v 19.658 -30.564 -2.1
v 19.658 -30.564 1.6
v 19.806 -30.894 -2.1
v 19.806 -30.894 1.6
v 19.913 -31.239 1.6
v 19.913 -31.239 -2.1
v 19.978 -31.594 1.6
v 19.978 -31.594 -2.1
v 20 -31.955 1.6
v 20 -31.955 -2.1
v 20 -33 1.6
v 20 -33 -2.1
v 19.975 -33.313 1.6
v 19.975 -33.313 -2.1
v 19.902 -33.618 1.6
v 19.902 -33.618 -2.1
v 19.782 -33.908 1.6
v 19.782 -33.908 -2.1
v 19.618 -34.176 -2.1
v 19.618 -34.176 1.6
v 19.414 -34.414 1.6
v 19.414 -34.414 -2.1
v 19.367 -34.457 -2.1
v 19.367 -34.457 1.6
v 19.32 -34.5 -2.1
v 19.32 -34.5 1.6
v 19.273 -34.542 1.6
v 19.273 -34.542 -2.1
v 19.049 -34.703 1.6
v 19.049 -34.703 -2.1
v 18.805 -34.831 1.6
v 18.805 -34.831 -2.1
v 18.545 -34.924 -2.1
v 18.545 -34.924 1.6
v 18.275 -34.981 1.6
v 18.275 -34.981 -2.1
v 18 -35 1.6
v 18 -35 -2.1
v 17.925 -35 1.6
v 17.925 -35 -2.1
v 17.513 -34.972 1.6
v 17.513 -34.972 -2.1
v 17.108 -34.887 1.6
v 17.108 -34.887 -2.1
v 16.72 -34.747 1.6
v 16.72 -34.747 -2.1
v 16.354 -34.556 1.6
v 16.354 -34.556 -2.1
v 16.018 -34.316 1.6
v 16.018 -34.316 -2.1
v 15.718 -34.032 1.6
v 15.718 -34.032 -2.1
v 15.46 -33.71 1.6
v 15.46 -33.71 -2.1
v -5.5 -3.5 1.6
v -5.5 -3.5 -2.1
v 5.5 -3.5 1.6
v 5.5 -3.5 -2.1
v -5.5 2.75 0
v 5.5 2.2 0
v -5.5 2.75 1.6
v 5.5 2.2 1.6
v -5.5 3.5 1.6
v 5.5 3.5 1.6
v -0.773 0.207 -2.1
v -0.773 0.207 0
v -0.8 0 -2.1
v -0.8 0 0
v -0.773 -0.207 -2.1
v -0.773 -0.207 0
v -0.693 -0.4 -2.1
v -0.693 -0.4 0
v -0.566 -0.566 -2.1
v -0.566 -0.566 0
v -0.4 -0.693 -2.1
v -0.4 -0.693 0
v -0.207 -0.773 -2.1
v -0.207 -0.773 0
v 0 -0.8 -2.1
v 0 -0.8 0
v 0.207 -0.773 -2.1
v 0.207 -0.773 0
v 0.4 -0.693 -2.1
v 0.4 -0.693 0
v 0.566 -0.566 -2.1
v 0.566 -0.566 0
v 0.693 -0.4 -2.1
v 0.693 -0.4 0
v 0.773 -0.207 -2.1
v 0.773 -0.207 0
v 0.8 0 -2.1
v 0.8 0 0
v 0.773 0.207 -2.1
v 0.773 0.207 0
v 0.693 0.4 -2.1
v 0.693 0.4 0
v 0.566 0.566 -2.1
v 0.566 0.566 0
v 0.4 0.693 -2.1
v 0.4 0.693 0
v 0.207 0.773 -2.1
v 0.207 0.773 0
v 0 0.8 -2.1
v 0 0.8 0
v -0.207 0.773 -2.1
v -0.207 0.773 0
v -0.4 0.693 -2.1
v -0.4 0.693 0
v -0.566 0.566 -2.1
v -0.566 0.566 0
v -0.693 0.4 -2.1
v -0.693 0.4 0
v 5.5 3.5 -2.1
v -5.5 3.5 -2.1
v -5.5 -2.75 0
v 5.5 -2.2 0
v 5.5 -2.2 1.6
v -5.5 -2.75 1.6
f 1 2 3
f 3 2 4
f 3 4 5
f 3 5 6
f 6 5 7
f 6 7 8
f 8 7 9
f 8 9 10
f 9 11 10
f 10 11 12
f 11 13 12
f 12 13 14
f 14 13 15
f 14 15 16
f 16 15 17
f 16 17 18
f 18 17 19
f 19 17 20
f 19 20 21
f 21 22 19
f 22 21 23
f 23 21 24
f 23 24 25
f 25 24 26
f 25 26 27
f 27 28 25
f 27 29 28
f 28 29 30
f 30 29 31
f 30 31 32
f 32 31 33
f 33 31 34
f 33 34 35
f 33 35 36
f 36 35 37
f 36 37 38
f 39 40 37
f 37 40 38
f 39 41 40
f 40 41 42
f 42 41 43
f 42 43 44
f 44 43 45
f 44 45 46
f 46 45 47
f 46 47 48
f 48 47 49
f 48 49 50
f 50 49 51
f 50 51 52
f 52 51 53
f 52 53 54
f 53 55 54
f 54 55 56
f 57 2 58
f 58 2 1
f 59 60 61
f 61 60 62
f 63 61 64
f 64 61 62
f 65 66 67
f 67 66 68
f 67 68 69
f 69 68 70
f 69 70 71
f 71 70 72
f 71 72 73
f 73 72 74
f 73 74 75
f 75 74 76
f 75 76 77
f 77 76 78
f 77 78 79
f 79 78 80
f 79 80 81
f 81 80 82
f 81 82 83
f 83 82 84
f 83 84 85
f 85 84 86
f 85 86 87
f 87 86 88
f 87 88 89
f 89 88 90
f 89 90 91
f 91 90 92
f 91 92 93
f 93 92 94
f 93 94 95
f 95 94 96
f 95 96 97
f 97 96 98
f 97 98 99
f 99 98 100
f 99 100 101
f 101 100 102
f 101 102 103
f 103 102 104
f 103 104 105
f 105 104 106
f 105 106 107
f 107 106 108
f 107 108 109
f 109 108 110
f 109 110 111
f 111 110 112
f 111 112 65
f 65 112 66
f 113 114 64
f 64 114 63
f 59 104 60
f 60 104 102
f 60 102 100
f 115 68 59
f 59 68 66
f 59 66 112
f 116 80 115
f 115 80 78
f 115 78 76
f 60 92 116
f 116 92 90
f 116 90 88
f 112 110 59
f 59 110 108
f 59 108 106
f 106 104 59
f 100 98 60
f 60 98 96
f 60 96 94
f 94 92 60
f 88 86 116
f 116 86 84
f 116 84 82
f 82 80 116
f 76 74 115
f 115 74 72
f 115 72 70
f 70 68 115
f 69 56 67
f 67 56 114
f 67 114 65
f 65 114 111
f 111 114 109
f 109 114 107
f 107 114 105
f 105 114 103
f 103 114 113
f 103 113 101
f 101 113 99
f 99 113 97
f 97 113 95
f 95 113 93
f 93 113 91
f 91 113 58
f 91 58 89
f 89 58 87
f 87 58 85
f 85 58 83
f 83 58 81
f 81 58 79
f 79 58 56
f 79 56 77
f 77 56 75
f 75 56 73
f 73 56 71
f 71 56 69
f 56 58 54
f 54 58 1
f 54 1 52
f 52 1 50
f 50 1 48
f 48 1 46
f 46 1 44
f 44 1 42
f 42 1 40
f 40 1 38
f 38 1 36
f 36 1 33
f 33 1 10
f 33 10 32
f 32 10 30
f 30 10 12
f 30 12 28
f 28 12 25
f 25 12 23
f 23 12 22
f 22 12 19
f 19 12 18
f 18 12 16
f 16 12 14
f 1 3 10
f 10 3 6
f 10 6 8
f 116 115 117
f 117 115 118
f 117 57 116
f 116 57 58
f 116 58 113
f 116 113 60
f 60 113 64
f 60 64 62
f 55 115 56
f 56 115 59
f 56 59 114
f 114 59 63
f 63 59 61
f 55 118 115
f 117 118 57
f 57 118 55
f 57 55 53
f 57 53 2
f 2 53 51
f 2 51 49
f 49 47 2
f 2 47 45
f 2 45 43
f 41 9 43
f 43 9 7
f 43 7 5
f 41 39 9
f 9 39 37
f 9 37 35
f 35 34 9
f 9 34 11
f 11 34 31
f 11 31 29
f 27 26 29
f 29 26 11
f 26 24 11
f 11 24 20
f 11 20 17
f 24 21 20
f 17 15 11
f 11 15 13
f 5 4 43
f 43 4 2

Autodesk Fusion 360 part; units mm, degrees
sketch "Sketch1" plane through (0, 0, 0) normal (0, 0, 1) x (1, 0, 0)
  line L0 (5.5, -3.5) -> (-5.5, -3.5)
  line L1 (-5.5, -3.5) -> (-5.5, 3.5)
  line L2 (-5.5, 3.5) -> (5.5, 3.5)
  line L3 (5.5, 3.5) -> (5.5, -3.5)
  line L4 (5.5, -3.5) -> (-5.5, 3.5) construction
  line L5 (-5.5, -3.5) -> (5.5, 3.5) construction
  line L6 (-5.5, 2.75) -> (-5.5, -2.75)
  line L7 (5.5, 2.2) -> (5.5, -2.2)
  line L8 (-5.5, 2.75) -> (5.5, 2.2)
  line L9 (-5.5, -2.75) -> (5.5, -2.2)
  circle A0 centre (0, 0) radius 0.8
  line L10 (-5.5, -3.5) -> (20, -3.5) construction
  line L11 (20, -31.9548) -> (20, -33)
  line L12 (18, -35) -> (17.9246, -35)
  line L13 (-5.5, -46.9761) -> (-5.5, -3.5) construction
  circle A1 centre (-12, 0) radius 47.4236 construction
  line L14 (0, 0) -> (-12, 0)
  line L15 (5.5, -3.5) -> (19.6582, -30.5642)
  line L16 (-5.5, -3.5) -> (15.4597, -33.7101)
  arc A2 (18, -35) -> (20, -33) centre (18, -33) ccw
  circle A3 centre (-12, 0) radius 46.596
  arc A4 (15.4597, -33.7101) -> (17.9246, -35) centre (17.9246, -32) ccw
  arc A5 (20, -31.9548) -> (19.6582, -30.5642) centre (17, -31.9548) ccw
  point P0 (-5.5, -35)
  dimension "d1" = 11
  dimension "d2" = 7
  dimension "d3" = 5.5
  dimension "d4" = 4.4
  dimension "d5" = 1.6
  dimension "d16" = 35
  dimension "d17" = 20
  dimension "d19" = 12
  dimension "d20" = 11.9761
  dimension "d21" = 2
  dimension "d22" = 3
extrude "Extrude1" add sketch "Sketch1" along normal blind 1.6 contours L0 L1 L3 L9 | L1 L2 L3 L8 makes body 1 at (-1.8333, 2.5667, 0.5333) makes body 2 at (-1.8333, -2.5667, 0.5333)
extrude "Extrude2" add sketch "Sketch1" against normal blind 2.1 contours L0 L1 L3 L9 | L1 L3 L6 L7 L8 L9 | L1 L2 L3 L8 bodies 2 1
extrude "Extrude5" add sketch "Sketch1" along normal up to surface (1.6 mm away) contours L0 L11 L12 L15 L16 A2 A3 A4 A5 bodies 2
extrude "Extrude6" add 1 faces at (5.1532, -13.57, 0) along direction (0, 0, -1) up to surface (2.1 mm away) on bodies 2 bodies 2
